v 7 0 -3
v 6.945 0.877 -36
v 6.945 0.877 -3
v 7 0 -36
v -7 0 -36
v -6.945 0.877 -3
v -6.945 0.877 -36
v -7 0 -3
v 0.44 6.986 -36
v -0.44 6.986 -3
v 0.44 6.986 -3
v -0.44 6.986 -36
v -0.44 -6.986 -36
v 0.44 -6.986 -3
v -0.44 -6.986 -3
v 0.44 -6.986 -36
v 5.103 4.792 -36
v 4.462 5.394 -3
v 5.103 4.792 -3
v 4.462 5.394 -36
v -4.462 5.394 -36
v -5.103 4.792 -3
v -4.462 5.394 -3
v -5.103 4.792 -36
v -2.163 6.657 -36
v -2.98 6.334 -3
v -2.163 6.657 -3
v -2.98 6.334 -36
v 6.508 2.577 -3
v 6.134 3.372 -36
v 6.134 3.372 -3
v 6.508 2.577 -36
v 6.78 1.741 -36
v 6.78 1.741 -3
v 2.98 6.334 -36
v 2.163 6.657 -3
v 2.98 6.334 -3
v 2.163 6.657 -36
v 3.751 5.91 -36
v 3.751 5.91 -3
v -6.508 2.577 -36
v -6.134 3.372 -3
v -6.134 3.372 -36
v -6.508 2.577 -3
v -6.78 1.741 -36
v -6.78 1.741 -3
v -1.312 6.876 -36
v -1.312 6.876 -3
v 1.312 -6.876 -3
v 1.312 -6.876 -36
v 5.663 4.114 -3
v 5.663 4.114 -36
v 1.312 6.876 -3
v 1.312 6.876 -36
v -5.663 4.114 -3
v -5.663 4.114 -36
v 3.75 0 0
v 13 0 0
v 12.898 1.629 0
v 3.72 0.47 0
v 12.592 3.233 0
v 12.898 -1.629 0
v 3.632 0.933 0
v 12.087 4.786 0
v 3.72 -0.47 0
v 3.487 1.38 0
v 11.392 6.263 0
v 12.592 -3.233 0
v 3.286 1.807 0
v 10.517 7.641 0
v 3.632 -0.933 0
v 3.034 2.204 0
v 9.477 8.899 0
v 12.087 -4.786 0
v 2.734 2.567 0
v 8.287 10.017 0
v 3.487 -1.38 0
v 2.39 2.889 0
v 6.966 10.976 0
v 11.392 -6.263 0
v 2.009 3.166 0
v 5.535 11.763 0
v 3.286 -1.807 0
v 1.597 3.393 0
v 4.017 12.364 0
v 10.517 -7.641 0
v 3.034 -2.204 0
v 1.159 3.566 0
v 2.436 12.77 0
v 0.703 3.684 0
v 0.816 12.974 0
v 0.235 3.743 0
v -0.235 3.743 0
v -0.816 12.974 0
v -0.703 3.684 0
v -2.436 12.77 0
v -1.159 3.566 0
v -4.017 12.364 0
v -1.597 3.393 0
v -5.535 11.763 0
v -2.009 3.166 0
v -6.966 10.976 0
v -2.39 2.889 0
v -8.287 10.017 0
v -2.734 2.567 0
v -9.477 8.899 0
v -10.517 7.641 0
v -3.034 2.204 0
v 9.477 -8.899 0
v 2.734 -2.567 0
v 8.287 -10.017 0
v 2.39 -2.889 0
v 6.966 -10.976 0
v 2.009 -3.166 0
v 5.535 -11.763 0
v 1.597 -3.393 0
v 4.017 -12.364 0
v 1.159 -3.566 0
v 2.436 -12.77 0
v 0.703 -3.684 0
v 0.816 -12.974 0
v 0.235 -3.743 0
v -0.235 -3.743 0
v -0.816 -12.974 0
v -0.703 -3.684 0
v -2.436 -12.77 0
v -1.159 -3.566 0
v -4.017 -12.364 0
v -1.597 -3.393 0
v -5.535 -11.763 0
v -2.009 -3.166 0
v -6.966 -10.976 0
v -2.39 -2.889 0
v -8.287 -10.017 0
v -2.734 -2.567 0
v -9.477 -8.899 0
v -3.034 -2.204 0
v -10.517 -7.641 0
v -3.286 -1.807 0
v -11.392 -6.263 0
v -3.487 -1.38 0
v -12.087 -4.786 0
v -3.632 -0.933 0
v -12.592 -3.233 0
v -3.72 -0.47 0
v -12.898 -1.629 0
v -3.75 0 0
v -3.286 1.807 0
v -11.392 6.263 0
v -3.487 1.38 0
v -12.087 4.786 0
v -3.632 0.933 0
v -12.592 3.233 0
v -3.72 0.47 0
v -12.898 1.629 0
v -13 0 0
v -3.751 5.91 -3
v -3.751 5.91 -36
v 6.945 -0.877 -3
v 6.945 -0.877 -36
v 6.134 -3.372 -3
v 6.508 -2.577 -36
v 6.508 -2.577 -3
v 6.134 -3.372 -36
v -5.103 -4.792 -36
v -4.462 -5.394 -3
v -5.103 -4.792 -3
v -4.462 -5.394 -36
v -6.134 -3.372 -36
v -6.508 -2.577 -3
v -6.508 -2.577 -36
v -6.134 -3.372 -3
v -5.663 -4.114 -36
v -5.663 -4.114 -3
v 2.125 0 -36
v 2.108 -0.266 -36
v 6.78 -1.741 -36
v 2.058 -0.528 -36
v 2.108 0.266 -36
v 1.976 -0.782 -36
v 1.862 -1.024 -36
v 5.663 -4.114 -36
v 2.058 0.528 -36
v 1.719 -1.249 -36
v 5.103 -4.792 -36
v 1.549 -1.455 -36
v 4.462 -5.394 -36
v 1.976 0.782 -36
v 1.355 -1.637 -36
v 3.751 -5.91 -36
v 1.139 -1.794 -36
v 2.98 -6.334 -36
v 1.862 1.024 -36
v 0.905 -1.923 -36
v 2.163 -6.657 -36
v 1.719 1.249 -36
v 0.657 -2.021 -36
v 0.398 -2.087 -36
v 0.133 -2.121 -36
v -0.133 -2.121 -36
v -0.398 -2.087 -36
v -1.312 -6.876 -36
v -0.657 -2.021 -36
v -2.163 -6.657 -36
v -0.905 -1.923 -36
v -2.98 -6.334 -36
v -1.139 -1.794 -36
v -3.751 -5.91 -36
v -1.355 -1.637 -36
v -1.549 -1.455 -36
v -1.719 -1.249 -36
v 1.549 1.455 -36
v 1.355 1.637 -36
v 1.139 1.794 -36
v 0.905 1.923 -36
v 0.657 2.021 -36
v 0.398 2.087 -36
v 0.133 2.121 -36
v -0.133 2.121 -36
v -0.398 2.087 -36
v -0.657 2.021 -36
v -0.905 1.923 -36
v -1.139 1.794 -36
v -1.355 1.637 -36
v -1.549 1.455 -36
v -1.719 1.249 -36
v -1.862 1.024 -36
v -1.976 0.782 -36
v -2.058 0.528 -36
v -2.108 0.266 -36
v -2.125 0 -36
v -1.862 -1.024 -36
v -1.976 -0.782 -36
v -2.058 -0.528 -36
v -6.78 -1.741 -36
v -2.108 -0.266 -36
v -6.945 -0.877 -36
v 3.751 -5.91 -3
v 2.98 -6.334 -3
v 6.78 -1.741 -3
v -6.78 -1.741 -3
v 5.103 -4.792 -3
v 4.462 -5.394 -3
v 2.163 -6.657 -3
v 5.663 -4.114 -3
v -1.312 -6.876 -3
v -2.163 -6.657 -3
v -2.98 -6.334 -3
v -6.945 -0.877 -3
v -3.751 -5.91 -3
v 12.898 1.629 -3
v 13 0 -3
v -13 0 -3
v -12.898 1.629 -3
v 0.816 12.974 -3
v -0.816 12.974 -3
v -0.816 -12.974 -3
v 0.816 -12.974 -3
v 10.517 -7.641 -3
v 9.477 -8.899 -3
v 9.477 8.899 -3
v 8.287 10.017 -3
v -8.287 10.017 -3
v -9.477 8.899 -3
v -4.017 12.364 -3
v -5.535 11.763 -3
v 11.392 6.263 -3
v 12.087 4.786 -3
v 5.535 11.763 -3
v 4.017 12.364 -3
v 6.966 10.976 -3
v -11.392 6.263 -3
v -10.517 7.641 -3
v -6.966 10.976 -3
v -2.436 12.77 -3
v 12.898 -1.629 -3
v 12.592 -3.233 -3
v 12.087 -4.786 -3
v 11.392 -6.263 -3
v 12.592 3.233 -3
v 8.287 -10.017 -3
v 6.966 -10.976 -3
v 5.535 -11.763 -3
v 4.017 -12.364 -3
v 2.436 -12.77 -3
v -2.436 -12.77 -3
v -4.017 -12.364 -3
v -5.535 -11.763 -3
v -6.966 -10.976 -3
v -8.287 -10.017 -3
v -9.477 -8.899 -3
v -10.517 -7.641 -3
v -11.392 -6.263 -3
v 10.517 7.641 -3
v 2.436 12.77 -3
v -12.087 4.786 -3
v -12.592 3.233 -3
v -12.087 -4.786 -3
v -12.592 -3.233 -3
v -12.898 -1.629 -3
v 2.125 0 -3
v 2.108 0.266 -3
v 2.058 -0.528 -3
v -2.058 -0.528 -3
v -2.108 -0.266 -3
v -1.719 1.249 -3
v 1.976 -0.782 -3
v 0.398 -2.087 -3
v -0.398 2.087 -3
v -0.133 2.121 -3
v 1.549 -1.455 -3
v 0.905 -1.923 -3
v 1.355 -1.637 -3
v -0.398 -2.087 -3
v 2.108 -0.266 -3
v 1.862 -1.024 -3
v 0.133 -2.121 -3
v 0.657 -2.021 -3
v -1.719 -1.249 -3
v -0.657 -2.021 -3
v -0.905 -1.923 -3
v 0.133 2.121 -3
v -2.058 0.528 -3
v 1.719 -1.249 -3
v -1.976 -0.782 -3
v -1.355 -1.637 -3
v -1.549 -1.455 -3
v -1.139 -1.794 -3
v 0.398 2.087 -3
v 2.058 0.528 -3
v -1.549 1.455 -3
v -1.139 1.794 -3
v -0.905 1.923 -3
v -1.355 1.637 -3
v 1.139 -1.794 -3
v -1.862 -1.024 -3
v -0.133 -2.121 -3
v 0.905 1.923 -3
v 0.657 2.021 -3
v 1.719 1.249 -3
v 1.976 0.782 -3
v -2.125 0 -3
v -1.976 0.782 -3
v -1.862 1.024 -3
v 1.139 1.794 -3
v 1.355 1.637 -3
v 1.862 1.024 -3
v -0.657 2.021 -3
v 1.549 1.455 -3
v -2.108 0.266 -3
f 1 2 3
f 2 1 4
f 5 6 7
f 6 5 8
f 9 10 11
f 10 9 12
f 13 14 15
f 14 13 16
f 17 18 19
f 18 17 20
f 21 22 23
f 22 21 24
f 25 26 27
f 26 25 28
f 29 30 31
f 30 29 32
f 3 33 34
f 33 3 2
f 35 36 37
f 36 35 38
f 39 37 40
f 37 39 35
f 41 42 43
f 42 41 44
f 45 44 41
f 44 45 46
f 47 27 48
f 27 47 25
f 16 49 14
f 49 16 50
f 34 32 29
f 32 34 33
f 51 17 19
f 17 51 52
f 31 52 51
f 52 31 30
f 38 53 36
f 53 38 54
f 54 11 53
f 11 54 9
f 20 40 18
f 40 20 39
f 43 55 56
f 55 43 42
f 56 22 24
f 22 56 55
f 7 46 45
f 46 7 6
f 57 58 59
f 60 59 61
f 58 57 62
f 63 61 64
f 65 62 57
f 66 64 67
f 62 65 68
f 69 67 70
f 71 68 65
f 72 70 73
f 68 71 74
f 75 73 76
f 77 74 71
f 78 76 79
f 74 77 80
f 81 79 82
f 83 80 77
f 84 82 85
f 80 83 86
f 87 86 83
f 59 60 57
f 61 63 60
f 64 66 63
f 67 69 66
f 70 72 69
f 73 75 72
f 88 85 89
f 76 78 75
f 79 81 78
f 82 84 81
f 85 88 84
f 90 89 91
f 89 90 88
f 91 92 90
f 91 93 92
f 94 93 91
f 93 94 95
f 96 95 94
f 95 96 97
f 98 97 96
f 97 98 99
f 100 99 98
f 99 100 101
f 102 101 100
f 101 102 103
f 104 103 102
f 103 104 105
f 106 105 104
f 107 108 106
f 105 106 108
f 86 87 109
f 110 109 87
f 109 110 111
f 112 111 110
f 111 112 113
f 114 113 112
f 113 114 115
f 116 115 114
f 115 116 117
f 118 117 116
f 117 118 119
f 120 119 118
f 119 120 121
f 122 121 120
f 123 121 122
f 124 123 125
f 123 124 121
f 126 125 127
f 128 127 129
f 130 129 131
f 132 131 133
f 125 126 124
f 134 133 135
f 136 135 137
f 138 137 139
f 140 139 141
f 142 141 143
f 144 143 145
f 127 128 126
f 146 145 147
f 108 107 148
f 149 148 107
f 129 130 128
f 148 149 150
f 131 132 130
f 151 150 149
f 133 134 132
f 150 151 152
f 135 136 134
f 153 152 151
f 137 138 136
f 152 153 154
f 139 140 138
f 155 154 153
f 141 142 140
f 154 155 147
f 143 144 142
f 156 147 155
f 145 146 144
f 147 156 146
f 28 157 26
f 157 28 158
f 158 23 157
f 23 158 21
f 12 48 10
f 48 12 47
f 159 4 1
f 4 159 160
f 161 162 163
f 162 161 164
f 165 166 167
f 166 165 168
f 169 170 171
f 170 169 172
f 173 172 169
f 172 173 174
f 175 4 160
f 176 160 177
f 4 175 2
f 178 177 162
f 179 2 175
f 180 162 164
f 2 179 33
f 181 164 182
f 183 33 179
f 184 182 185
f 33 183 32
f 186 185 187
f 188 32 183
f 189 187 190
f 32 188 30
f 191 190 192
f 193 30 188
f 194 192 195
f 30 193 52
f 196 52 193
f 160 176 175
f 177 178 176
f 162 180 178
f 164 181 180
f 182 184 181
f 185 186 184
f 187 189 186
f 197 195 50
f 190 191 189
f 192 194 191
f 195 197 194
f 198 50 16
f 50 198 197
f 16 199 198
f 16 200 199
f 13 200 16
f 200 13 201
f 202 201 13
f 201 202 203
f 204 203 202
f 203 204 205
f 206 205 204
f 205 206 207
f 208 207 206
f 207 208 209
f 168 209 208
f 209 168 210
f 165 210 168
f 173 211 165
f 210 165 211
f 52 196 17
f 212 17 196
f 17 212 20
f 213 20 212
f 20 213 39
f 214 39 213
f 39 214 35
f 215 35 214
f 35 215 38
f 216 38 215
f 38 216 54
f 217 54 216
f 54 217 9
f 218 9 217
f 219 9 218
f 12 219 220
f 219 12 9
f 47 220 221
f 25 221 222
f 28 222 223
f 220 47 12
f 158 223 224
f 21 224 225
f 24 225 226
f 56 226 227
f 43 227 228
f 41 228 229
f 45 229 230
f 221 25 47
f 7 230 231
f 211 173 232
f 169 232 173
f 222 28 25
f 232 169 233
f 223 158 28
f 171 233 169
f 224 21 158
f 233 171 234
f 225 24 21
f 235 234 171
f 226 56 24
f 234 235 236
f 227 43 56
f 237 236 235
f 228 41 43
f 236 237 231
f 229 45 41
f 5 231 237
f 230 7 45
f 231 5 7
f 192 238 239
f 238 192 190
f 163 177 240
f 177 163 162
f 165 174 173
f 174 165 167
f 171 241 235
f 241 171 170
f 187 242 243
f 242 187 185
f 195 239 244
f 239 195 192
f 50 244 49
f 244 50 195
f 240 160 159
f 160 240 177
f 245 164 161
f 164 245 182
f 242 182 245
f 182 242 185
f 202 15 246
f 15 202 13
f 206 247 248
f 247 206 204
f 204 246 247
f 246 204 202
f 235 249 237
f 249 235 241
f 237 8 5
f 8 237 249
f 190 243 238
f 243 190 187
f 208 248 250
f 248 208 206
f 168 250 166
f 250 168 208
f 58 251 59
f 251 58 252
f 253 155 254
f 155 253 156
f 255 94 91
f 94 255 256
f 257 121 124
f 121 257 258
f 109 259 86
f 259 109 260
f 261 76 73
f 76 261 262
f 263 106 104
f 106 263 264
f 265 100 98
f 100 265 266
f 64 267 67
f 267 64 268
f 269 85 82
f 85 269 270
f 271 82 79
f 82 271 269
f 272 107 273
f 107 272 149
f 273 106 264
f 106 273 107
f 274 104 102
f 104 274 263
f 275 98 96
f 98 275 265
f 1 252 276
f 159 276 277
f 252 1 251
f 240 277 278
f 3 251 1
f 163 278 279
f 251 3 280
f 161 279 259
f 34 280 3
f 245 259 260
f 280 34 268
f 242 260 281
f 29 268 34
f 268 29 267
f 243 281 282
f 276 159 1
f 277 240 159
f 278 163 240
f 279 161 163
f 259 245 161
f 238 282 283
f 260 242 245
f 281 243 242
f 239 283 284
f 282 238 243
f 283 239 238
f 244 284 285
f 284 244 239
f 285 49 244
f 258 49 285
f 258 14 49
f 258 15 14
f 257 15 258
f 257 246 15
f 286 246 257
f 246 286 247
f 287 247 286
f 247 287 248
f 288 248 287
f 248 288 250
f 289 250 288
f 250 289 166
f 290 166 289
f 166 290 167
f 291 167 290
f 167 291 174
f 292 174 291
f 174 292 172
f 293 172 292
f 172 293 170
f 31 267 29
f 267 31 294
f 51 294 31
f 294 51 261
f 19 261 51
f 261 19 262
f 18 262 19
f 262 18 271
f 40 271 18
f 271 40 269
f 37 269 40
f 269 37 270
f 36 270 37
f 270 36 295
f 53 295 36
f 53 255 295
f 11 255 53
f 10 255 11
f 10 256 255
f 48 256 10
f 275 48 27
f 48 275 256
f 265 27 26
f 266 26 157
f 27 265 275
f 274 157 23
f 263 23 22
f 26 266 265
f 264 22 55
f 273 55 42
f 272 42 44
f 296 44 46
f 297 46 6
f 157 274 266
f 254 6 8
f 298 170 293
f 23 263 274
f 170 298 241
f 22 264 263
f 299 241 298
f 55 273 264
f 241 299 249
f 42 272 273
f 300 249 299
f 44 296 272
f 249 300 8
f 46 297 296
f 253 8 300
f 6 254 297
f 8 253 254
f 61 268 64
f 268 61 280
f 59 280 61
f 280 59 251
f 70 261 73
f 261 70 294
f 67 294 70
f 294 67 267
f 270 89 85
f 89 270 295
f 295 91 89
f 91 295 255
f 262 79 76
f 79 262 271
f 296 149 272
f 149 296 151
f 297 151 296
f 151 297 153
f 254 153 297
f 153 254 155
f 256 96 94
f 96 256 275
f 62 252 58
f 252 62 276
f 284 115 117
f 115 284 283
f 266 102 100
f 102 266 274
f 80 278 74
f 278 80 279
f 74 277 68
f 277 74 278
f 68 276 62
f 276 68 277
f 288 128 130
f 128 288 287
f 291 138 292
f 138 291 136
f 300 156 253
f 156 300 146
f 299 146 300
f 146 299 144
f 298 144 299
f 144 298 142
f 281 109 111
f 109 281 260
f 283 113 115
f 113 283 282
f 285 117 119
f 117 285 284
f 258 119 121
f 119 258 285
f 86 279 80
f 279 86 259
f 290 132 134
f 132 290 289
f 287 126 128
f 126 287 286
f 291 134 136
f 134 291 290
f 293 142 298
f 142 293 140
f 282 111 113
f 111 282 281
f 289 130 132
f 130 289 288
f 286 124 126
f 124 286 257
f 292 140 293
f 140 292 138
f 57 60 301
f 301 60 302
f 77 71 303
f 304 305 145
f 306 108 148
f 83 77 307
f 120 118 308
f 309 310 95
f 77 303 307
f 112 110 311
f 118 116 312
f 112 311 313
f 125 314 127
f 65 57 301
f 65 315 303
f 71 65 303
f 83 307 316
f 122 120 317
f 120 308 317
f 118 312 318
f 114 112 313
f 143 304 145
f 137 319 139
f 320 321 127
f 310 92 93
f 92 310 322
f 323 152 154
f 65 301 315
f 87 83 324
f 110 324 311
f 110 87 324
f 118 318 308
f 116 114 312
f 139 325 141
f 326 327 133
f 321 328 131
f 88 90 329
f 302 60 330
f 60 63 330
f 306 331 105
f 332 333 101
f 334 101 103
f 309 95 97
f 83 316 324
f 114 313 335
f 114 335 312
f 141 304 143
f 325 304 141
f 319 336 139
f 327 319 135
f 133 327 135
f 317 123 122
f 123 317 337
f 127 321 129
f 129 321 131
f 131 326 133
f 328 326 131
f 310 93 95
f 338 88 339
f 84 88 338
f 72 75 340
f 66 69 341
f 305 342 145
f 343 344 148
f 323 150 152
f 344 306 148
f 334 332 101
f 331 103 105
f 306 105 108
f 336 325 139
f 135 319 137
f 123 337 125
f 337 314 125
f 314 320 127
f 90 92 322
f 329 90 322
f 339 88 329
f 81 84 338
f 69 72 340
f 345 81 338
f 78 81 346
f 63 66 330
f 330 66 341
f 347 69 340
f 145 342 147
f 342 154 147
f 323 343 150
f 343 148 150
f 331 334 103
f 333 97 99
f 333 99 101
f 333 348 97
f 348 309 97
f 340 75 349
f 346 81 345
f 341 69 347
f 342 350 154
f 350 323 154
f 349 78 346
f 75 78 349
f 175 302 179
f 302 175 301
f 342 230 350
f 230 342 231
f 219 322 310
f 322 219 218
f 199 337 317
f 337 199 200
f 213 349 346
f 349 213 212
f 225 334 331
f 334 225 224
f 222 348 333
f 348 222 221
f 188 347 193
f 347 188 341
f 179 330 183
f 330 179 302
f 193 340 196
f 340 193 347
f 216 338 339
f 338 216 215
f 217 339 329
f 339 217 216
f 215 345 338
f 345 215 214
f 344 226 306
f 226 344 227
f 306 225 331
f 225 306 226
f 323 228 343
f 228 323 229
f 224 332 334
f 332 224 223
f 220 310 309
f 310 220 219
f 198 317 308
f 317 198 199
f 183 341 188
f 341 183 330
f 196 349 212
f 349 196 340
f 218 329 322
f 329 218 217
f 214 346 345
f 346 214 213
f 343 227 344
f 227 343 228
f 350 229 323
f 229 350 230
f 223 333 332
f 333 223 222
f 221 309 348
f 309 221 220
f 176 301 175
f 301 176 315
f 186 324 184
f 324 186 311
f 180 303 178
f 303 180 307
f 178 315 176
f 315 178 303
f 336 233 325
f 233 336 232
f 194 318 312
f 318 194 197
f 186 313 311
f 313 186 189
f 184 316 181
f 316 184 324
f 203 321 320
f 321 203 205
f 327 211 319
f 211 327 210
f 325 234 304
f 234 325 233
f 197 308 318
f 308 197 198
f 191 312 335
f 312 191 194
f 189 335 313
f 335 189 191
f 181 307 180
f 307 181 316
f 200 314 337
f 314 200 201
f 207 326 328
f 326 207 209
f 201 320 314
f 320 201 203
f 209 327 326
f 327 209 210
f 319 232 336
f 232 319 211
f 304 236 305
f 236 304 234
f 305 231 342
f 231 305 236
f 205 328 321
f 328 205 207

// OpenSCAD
$fn = 50;


difference() {
	union() {
		translate(v = [0, 0, -36.0000000000]) {
			cylinder(h = 36, r = 7.0000000000);
		}
		translate(v = [0, 0, -3.0000000000]) {
			cylinder(h = 3, r = 13.0000000000);
		}
	}
	union() {
		translate(v = [0, 0, 0]) {
			rotate(a = [0, 0, 0]) {
				difference() {
					union() {
						#translate(v = [0, 0, -36.0000000000]) {
							cylinder(h = 36, r = 2.0000000000);
						}
						#translate(v = [0, 0, -3]) {
							cylinder(h = 3, r1 = 2.1250000000, r2 = 3.7500000000);
						}
						#translate(v = [0, 0, -36.0000000000]) {
							cylinder(h = 36, r = 2.1250000000);
						}
						#translate(v = [0, 0, -36.0000000000]) {
							cylinder(h = 36, r = 2.0000000000);
						}
					}
					union();
				}
			}
		}
	}
}
